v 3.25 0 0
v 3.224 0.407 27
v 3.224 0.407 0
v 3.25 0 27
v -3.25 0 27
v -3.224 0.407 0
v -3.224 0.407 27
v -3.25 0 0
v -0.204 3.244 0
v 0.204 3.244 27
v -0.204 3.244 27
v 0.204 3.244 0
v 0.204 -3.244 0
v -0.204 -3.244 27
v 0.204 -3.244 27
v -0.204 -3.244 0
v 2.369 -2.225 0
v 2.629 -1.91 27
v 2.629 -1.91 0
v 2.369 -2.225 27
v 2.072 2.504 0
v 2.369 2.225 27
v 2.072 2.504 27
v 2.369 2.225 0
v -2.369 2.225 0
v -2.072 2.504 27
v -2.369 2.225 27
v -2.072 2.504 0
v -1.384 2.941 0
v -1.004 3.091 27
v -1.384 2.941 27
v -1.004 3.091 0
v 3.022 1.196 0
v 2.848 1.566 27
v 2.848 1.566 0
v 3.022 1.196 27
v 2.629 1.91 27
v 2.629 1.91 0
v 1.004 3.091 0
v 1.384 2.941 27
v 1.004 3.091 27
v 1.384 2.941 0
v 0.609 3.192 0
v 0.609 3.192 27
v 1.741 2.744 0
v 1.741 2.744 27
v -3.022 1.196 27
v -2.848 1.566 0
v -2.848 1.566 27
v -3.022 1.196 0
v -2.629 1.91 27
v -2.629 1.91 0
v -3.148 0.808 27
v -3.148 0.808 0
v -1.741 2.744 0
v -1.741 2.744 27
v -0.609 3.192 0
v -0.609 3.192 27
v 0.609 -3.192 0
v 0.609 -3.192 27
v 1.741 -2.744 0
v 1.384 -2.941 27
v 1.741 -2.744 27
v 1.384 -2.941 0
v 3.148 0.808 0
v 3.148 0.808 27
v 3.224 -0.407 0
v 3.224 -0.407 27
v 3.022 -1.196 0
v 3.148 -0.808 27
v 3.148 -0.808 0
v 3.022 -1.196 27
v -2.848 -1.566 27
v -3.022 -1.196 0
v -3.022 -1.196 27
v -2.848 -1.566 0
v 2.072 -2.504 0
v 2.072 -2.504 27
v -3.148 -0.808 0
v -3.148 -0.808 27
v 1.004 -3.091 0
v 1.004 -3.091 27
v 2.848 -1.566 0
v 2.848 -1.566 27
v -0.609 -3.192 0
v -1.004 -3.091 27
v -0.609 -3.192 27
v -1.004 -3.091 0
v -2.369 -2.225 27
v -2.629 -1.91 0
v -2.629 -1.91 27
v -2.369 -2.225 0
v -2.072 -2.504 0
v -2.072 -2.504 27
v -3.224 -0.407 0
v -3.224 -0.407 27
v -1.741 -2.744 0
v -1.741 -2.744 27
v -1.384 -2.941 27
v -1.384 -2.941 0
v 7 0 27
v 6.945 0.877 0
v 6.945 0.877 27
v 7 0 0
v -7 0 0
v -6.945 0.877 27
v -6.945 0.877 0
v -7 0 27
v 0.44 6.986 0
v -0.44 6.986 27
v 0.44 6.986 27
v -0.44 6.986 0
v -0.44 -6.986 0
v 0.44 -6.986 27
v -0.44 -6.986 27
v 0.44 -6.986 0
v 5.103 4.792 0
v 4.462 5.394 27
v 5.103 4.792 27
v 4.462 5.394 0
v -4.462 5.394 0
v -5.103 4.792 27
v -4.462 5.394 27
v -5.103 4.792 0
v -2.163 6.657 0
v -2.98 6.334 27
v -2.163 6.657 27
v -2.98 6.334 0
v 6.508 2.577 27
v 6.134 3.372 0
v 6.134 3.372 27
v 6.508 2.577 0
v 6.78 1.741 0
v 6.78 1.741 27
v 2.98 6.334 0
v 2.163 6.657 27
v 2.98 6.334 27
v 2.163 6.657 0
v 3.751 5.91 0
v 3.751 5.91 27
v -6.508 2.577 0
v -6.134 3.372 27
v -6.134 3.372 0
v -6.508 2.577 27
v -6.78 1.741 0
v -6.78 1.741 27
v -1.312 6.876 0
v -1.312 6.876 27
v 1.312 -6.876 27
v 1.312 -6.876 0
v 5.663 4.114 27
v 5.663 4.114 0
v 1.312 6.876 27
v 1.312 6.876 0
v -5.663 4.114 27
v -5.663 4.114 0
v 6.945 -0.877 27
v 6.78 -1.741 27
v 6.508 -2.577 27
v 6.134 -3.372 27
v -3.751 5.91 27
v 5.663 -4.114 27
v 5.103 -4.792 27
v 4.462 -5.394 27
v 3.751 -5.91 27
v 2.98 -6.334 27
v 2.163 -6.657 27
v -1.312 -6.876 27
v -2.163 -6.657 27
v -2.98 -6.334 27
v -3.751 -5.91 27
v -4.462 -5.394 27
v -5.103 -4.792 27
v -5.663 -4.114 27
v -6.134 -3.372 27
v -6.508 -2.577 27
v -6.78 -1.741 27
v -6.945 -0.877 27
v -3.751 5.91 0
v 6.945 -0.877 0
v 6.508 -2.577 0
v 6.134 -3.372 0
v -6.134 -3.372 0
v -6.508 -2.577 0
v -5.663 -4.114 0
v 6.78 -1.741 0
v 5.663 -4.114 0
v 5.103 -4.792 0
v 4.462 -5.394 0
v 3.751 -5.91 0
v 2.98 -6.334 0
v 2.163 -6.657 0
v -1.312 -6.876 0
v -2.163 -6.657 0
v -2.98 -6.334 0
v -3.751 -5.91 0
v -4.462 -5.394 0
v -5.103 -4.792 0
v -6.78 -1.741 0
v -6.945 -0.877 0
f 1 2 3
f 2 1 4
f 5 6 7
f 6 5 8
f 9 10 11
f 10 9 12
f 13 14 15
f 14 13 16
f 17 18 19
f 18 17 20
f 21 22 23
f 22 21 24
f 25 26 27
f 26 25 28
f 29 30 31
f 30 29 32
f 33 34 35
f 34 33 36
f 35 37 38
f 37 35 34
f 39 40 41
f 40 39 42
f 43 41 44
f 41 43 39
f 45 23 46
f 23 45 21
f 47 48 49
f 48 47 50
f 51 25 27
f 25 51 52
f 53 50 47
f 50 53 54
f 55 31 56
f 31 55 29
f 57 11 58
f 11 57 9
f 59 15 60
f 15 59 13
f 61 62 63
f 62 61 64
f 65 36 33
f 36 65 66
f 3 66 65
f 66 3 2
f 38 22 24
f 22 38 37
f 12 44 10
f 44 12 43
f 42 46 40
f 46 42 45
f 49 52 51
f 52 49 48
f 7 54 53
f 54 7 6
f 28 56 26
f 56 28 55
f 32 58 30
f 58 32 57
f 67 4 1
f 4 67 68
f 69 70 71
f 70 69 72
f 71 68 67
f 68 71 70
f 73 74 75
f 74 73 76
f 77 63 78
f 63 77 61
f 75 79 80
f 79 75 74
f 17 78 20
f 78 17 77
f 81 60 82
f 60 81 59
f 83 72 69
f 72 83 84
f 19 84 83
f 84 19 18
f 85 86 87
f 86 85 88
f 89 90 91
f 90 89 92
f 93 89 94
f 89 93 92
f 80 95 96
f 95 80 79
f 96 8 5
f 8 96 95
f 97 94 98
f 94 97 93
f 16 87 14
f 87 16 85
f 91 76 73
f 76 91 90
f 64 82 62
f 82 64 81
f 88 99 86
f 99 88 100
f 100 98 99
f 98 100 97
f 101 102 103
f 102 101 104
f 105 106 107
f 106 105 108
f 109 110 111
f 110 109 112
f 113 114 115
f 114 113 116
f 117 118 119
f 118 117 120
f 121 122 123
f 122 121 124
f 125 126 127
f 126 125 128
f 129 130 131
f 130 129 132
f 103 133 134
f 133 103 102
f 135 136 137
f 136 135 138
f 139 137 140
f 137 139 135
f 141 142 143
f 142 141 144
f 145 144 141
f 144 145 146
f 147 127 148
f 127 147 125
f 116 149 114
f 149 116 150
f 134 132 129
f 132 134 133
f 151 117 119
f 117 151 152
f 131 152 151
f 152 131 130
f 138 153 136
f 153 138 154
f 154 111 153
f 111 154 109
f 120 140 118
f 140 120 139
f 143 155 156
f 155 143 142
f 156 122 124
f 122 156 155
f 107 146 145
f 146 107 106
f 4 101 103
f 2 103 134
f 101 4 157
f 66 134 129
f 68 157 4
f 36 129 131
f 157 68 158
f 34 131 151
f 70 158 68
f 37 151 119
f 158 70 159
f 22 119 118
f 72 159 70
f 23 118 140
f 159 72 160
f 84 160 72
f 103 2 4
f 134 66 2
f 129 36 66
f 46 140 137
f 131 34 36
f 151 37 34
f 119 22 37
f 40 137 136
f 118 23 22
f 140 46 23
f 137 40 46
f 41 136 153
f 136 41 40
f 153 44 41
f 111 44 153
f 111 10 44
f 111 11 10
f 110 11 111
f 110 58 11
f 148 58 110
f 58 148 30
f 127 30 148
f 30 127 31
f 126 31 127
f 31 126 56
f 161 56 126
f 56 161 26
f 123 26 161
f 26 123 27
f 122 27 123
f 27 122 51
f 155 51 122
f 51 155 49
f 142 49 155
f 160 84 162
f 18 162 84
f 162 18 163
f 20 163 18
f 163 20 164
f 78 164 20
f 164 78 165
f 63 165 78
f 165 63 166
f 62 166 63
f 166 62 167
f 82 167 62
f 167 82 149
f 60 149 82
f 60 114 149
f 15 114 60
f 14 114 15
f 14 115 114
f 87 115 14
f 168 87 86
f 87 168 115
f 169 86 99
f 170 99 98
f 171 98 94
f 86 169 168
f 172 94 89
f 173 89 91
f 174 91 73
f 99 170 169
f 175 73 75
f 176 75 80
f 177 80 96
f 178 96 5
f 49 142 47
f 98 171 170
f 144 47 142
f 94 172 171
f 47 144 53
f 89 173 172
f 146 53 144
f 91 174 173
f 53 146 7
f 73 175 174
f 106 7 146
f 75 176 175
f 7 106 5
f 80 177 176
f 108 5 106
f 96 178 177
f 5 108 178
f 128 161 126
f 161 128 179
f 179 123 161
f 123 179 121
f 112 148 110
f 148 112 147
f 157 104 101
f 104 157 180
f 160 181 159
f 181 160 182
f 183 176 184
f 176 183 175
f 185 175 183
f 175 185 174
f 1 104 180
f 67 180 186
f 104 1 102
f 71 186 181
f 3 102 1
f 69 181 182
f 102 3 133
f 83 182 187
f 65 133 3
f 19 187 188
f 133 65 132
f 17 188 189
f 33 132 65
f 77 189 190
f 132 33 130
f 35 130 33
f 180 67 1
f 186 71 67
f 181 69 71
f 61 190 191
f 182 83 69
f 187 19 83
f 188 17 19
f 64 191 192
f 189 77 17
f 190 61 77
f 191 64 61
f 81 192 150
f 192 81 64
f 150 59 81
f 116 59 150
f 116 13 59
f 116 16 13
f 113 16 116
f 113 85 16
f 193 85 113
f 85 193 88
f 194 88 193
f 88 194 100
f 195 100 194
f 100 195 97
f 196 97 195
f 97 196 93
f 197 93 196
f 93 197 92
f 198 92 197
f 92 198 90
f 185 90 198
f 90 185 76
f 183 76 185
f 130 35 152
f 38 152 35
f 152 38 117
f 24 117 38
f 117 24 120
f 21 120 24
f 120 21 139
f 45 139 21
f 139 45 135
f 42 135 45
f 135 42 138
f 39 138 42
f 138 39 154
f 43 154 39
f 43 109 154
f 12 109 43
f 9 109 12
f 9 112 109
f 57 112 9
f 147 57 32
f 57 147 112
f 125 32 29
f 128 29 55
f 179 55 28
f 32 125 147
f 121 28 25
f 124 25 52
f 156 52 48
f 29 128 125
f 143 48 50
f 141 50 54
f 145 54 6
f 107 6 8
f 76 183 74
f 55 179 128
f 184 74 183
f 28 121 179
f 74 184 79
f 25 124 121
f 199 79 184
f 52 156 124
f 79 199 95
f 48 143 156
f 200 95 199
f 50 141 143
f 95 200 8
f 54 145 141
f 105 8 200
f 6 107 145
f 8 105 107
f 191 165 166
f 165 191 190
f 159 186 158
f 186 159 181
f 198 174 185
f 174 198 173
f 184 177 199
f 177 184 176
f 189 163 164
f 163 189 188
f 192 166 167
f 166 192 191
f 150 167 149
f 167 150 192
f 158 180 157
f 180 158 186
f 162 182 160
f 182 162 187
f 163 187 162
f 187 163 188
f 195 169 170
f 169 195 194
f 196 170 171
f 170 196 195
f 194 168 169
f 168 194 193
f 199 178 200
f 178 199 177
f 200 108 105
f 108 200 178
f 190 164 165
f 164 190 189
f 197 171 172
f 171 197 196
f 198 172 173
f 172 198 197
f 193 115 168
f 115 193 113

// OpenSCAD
$fn = 50;


difference() {
	union() {
		translate(v = [0, 0, 0]) {
			rotate(a = [0, 0, 0]) {
				cylinder(h = 27, r = 7.0000000000);
			}
		}
	}
	union() {
		translate(v = [0.0000000000, 0.0000000000, 0]) {
			rotate(a = [0, 0, 0]) {
				translate(v = [0, 0, -50]) {
					rotate(a = [0, 0, 0]) {
						cylinder(h = 100, r = 3.2500000000);
					}
				}
			}
		}
		translate(v = [0.0000000000, 0.0000000000, 0]) {
			rotate(a = [0, 0, 0]) {
				translate(v = [0, 0, -50]) {
					rotate(a = [0, 0, 0]) {
						cylinder(h = 100, r = 1.8000000000);
					}
				}
			}
		}
	}
}
